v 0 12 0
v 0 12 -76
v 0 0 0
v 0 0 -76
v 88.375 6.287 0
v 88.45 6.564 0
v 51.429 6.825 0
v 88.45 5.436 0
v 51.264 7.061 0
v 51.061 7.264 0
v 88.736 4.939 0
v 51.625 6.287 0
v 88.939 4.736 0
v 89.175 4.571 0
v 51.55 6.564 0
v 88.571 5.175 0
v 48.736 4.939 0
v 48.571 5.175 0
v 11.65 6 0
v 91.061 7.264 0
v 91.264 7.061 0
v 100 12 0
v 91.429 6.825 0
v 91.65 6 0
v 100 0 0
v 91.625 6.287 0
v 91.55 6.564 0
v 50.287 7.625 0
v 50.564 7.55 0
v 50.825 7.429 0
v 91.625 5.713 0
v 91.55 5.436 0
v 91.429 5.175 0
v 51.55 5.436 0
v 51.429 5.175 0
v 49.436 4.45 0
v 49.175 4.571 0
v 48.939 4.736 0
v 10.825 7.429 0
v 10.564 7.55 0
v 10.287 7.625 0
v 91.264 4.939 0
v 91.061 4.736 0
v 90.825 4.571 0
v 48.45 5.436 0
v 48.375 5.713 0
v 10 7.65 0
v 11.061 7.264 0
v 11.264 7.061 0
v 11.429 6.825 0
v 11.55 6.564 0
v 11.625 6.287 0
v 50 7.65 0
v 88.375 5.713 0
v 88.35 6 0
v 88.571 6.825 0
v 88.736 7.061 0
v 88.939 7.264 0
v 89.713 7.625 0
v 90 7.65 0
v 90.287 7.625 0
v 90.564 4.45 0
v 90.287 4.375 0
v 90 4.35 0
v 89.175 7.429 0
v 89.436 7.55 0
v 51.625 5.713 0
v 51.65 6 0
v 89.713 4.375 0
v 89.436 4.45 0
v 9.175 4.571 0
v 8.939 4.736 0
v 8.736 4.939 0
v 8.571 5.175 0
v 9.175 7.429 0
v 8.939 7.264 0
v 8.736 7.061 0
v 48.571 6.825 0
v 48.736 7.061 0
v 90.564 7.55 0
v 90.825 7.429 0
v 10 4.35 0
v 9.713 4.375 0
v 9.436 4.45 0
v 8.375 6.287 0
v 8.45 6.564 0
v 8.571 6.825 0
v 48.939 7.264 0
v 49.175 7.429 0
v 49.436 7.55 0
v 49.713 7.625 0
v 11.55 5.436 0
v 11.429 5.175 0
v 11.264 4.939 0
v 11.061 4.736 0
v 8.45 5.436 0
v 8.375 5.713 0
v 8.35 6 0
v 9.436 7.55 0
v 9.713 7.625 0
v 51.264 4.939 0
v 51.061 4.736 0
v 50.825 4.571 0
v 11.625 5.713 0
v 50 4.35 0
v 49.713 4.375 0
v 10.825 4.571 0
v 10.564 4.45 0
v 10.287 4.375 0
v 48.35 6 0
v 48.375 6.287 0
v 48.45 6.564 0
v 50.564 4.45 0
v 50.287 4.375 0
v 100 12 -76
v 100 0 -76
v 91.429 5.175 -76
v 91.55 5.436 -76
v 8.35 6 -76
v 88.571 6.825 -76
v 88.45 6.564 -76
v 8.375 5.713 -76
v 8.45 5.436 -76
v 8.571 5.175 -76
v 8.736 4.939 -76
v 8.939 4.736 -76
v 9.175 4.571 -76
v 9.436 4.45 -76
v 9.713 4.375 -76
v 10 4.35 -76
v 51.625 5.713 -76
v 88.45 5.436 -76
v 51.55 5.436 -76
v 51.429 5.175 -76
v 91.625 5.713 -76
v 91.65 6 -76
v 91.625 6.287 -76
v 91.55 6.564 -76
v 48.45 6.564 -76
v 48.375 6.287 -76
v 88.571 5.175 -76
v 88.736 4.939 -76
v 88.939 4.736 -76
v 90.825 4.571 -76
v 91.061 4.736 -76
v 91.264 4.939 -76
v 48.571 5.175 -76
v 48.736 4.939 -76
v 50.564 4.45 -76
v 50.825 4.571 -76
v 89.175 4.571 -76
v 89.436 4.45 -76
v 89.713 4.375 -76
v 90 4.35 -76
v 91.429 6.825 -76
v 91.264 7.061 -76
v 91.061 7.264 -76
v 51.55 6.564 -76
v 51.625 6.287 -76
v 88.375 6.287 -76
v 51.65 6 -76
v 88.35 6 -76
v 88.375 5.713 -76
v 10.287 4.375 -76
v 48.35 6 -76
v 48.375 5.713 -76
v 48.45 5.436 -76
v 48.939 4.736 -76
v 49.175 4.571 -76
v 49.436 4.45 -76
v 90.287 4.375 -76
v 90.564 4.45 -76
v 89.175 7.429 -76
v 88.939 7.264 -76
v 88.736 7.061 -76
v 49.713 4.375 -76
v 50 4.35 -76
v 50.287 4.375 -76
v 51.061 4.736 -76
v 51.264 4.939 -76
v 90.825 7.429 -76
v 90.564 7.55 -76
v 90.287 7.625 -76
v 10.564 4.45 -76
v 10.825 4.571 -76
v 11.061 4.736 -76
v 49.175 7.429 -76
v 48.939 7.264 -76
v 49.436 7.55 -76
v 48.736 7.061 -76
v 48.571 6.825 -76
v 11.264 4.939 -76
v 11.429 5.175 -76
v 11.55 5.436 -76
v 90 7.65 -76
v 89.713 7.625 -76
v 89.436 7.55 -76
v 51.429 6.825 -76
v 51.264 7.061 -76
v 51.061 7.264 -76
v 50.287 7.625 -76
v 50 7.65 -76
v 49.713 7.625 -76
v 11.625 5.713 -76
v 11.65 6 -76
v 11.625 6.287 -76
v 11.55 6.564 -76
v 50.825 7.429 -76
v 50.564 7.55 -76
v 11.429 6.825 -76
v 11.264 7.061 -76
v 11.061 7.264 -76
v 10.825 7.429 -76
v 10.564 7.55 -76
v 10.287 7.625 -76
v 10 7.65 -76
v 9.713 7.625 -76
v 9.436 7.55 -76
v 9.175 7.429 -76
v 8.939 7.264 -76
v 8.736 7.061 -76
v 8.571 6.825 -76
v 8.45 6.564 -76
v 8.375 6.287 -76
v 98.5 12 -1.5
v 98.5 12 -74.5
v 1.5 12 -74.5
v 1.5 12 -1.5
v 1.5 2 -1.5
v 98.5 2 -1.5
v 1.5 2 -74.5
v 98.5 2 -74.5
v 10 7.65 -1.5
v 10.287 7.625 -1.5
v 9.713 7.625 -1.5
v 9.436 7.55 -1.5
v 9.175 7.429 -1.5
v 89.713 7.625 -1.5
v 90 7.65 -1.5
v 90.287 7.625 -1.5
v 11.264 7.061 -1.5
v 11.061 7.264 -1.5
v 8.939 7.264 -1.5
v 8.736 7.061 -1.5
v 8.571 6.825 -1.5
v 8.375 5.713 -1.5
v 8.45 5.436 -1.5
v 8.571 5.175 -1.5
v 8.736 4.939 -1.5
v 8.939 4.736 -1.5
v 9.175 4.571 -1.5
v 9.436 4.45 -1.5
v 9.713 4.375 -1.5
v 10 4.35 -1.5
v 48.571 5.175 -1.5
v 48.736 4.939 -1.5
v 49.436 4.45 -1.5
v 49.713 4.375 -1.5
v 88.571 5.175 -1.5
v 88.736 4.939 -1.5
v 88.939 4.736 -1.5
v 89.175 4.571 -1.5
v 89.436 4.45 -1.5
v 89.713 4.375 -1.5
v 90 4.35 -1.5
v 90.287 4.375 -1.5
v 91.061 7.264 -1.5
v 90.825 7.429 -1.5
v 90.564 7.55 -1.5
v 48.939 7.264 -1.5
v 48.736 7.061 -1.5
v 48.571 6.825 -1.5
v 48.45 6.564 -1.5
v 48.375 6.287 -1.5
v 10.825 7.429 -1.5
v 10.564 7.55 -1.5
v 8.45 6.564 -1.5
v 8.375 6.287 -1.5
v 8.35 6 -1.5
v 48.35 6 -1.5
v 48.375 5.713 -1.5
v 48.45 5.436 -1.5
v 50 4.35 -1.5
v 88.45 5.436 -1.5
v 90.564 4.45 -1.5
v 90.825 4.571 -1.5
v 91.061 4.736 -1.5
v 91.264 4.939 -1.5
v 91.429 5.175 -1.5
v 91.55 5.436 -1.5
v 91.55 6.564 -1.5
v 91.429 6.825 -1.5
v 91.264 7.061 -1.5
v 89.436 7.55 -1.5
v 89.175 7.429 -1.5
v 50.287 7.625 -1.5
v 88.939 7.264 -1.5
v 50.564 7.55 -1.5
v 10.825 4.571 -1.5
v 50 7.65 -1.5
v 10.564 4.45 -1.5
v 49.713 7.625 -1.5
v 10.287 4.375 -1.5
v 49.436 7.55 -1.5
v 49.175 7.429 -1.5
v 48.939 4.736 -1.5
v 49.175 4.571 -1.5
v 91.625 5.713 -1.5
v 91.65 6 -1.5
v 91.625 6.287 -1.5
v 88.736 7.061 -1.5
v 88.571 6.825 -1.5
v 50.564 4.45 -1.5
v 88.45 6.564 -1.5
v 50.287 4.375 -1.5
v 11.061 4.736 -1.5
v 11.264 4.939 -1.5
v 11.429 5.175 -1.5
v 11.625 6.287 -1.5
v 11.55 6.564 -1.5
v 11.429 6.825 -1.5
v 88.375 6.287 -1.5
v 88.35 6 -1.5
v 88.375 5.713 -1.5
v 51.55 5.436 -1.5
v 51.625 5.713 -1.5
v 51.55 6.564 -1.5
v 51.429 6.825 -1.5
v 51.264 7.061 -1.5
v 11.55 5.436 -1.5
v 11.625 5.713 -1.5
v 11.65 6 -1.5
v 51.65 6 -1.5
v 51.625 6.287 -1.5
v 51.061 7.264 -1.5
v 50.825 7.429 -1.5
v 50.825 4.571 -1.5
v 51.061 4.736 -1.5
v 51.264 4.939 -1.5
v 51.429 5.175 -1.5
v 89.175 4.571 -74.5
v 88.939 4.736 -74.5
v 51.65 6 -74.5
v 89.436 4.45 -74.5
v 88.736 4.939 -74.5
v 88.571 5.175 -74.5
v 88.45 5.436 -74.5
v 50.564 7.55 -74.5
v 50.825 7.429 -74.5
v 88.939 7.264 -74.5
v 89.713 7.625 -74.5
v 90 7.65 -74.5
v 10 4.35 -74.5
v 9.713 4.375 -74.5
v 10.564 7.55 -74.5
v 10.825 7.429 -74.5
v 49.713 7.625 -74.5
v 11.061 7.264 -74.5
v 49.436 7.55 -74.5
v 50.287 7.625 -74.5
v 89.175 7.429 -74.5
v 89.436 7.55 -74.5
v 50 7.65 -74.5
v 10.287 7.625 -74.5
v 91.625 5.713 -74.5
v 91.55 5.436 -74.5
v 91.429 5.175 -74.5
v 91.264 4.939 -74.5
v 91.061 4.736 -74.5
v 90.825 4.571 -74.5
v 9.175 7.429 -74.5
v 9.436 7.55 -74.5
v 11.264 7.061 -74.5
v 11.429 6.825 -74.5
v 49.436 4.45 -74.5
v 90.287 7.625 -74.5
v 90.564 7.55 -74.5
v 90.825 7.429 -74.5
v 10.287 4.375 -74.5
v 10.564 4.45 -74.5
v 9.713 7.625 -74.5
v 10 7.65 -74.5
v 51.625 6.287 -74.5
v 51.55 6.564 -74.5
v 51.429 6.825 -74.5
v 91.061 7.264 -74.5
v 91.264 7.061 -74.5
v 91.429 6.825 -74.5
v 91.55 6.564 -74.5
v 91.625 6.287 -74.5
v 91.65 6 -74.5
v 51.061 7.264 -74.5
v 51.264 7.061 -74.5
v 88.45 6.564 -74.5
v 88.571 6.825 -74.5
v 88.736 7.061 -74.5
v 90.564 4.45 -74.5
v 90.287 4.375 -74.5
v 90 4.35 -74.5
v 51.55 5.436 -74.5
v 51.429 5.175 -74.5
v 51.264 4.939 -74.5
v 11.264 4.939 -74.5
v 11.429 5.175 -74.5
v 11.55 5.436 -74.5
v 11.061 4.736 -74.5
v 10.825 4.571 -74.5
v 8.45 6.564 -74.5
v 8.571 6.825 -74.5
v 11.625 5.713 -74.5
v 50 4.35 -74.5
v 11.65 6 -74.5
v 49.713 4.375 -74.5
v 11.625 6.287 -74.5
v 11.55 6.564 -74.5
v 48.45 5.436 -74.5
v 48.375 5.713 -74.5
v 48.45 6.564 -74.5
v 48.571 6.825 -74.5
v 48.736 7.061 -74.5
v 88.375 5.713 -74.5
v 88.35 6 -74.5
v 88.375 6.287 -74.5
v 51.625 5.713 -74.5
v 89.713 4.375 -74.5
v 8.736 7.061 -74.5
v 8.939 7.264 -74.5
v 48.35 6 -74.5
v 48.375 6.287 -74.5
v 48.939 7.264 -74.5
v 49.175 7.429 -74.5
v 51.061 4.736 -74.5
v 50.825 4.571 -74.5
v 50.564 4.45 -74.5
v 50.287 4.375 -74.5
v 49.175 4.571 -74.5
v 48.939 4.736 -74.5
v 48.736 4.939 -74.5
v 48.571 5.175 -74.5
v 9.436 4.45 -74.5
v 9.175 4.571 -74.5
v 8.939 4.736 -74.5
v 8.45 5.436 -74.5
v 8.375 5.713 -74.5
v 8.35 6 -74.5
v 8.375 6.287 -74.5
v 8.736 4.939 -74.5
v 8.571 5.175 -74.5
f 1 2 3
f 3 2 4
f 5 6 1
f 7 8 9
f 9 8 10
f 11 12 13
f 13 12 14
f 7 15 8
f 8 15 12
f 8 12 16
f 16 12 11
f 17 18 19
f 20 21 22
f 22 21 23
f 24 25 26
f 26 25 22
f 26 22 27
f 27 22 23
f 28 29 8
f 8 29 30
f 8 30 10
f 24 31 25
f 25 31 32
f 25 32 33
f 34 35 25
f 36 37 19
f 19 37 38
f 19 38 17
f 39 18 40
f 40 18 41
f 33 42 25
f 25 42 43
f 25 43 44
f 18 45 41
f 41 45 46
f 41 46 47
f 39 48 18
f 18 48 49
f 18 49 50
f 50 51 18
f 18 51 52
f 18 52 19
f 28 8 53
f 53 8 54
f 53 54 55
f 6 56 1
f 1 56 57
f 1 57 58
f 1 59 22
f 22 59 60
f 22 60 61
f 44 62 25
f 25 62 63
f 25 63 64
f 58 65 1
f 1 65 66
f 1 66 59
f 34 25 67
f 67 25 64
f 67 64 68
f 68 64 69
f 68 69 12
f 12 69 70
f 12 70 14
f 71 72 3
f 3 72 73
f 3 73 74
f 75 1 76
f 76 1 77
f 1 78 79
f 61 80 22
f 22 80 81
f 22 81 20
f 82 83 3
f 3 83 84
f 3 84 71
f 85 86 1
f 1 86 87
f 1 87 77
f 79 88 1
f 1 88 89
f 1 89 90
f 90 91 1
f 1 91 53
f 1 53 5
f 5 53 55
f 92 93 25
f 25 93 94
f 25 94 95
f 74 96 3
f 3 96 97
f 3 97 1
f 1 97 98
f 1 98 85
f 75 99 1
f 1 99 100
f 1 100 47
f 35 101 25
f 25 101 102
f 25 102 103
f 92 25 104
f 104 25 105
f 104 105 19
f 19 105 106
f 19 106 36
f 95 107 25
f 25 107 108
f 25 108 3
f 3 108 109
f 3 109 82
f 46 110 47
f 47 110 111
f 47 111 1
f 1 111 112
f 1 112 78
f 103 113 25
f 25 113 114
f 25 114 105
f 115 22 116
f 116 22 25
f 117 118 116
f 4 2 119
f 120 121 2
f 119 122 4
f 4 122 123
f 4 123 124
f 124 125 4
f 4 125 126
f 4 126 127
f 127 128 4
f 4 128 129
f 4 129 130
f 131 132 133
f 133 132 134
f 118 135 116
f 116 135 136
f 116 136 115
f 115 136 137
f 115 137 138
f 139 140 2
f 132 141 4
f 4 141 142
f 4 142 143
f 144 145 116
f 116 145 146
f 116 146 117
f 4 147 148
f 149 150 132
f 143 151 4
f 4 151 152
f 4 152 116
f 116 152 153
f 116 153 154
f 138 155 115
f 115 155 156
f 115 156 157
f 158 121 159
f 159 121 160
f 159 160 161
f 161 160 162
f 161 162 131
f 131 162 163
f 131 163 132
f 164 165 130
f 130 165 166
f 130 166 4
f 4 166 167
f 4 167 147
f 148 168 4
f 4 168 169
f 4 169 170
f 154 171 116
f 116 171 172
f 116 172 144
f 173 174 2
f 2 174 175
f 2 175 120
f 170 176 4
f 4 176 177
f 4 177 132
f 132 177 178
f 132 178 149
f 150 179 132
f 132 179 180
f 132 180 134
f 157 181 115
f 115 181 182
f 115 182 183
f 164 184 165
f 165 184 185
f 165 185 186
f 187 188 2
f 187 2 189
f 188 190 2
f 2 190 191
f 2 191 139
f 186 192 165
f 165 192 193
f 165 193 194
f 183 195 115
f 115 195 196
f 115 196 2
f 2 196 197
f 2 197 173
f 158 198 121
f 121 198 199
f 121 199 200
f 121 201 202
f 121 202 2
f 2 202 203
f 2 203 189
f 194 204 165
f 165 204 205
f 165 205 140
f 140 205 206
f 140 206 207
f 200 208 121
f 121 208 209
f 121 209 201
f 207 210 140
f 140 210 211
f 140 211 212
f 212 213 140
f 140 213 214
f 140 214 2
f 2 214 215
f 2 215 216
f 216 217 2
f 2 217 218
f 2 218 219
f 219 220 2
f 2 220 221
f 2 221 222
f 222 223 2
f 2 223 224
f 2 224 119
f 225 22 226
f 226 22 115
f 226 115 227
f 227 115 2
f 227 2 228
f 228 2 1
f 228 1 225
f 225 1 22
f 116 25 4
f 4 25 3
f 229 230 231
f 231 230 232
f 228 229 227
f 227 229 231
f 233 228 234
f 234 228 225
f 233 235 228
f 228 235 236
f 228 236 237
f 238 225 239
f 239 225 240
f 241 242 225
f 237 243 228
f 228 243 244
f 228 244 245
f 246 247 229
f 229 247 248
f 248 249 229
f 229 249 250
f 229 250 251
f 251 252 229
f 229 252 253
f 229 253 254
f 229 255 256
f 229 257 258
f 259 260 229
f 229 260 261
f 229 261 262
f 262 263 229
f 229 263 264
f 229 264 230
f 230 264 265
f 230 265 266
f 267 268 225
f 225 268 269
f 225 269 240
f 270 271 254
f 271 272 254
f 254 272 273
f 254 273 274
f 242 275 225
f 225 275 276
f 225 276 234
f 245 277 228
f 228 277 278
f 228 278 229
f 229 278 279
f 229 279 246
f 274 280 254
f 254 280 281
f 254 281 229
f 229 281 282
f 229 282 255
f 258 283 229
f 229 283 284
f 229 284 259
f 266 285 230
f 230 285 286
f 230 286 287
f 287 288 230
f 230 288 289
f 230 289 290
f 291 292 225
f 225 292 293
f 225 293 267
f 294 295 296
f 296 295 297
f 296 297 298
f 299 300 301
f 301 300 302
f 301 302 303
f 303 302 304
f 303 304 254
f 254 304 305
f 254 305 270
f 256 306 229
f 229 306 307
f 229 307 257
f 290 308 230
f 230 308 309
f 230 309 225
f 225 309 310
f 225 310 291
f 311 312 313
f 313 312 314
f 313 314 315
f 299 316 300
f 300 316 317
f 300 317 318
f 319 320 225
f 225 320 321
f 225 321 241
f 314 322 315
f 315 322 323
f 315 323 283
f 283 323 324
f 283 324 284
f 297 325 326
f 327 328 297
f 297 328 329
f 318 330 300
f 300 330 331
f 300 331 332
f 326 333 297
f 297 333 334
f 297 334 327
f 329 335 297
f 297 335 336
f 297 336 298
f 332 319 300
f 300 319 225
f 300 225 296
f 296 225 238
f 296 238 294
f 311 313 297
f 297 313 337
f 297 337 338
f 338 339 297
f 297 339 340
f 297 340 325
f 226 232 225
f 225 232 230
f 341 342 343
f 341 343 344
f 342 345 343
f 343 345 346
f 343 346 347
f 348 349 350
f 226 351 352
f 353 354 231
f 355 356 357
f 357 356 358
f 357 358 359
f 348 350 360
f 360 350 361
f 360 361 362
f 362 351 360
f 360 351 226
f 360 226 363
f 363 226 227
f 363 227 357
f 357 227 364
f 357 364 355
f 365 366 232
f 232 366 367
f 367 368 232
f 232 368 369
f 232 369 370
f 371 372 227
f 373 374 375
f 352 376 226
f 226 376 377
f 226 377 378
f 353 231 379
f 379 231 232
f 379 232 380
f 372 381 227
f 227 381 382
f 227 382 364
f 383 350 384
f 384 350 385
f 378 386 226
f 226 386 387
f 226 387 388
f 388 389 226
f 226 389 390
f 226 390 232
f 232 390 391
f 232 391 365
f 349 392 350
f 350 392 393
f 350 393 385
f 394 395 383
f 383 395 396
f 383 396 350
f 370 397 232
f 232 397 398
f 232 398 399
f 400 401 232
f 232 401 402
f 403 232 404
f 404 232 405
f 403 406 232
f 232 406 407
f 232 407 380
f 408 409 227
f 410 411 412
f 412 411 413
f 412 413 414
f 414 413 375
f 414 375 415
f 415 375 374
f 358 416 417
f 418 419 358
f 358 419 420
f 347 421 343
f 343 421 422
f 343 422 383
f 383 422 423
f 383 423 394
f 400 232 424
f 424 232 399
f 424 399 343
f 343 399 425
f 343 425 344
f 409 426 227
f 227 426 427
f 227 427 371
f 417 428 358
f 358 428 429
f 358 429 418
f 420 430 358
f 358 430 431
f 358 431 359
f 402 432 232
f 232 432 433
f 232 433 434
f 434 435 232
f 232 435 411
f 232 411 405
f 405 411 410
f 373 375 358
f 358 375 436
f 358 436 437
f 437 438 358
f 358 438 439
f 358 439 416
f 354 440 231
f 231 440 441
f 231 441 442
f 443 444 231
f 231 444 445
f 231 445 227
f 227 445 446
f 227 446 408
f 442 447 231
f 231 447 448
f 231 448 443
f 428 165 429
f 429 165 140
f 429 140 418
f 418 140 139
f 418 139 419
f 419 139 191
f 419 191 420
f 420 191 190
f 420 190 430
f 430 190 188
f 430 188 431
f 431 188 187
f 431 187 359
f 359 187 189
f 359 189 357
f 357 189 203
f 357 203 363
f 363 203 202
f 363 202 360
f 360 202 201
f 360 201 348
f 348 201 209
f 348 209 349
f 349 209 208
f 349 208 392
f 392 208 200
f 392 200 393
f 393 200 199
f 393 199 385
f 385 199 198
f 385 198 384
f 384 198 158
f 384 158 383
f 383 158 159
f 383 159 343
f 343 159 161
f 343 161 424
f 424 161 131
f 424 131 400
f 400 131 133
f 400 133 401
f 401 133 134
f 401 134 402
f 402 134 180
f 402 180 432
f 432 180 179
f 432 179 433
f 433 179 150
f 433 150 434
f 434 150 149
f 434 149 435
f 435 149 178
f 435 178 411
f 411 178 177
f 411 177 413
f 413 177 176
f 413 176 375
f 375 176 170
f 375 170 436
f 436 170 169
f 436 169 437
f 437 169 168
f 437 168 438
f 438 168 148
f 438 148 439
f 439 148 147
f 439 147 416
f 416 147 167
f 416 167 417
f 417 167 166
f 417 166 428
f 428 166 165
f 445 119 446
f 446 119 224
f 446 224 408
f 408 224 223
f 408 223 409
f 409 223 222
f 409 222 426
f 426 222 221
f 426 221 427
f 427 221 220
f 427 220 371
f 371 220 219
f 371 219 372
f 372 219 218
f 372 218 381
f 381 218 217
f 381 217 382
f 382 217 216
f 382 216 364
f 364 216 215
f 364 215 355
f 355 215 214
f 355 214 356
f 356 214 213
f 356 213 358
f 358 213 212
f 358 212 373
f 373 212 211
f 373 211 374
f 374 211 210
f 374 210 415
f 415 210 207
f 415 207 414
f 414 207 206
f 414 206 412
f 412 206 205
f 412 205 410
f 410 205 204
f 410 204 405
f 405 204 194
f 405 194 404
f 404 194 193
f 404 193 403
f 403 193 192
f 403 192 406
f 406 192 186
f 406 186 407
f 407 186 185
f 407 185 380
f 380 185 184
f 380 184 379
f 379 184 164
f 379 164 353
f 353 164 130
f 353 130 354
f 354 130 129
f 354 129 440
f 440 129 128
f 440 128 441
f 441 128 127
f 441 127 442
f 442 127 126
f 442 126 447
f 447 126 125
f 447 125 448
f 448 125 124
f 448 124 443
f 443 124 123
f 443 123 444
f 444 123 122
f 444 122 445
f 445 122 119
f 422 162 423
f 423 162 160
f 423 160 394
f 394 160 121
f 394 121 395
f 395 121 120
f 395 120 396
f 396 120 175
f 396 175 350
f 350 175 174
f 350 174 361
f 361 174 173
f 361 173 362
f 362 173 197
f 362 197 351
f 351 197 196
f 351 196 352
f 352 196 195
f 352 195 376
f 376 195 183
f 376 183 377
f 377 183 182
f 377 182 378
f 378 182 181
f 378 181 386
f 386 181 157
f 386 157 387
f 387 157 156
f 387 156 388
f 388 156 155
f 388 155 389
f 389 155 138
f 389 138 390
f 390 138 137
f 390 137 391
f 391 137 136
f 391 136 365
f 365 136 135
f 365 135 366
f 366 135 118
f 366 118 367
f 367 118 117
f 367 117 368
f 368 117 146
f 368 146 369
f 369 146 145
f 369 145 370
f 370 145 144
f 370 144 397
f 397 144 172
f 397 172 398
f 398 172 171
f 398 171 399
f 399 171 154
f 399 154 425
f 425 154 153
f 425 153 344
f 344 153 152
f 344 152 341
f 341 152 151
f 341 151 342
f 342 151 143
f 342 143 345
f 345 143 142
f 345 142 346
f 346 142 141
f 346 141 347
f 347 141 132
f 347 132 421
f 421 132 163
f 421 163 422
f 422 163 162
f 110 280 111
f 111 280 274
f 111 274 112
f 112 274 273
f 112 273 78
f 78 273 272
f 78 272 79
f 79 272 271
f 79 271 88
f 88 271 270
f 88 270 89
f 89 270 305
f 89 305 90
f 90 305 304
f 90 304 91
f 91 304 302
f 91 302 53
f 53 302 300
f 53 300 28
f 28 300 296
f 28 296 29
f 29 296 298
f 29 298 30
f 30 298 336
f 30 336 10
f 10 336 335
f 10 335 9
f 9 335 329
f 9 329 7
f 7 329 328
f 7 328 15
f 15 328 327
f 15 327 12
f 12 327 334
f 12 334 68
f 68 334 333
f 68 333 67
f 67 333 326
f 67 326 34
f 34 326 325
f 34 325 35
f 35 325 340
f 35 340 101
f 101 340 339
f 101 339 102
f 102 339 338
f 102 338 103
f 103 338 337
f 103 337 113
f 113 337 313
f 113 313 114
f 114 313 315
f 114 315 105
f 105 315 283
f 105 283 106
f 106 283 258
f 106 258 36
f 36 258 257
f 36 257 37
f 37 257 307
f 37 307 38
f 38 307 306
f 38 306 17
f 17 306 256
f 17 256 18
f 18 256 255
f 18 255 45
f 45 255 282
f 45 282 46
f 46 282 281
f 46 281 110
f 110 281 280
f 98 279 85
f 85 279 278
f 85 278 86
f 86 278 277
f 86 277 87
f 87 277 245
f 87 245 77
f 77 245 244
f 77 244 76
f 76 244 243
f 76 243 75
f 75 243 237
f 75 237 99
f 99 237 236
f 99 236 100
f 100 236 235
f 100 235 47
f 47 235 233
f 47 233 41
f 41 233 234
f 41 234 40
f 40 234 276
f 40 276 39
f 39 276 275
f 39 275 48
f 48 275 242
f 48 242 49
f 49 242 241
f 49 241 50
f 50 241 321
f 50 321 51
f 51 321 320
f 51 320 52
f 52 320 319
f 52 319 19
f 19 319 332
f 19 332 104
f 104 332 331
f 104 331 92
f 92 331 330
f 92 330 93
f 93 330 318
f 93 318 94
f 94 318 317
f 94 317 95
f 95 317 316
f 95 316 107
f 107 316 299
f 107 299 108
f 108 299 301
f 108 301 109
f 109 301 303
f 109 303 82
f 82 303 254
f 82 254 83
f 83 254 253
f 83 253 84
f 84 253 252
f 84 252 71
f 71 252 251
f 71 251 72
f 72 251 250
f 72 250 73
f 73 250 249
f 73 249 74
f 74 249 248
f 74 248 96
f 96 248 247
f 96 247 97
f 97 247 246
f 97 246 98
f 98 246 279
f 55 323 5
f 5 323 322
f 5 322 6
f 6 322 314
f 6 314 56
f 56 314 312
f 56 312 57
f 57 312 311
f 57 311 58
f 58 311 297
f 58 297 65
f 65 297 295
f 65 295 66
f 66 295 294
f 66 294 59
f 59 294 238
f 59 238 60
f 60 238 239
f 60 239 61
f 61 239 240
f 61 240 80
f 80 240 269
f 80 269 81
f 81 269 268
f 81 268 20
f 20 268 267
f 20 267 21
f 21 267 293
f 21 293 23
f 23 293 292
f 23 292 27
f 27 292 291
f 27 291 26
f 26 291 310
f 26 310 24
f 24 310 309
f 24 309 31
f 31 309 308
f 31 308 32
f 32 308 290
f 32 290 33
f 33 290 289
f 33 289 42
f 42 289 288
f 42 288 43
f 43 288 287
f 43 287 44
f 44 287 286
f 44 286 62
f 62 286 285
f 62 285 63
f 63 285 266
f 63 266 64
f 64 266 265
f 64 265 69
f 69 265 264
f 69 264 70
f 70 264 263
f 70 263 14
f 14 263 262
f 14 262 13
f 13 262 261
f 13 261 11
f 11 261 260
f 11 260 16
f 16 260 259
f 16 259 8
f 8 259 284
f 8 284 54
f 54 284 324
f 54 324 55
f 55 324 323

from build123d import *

# Parameters (mm, degrees)
SKETCH_1_W          = 100
SKETCH_1_H          = 76
EXTRUDE_1_DEPTH     = 12
SKETCH_2_W          = 97
SKETCH_2_H          = 73
CUT_EXTRUDE_1_DEPTH = 10
SKETCH_3_R          = 1.65
CUT_EXTRUDE_2_DEPTH = 127.174482365


with BuildPart() as part:
    # 草图1 → 凸台-拉伸1 (new body)
    with BuildSketch(Plane(origin=(0, 0, 0), x_dir=(1, 0, 0), z_dir=(0, 1, 0))):
        with Locations((50, 38)):
            Rectangle(SKETCH_1_W, SKETCH_1_H)
    extrude(amount=EXTRUDE_1_DEPTH)

    # 草图2 → 切除-拉伸1 (cut)
    with BuildSketch(Plane(origin=(0, 12, 0), x_dir=(1, 0, 0), z_dir=(0, 1, 0))):
        with Locations((50, 38)):
            Rectangle(SKETCH_2_W, SKETCH_2_H)
    extrude(amount=-CUT_EXTRUDE_1_DEPTH, mode=Mode.SUBTRACT)

    # 草图3 → 切除-拉伸2 (cut, through all)
    with BuildSketch(Plane(origin=(0, 0, -76), x_dir=(-1, 0, 0), z_dir=(0, 0, -1))):
        with Locations((-90, 6)):
            Circle(SKETCH_3_R)
        with Locations((-10, 6)):
            Circle(SKETCH_3_R)
        with Locations((-50, 6)):
            Circle(SKETCH_3_R)
    extrude(amount=-CUT_EXTRUDE_2_DEPTH, mode=Mode.SUBTRACT)


solid = part.part
